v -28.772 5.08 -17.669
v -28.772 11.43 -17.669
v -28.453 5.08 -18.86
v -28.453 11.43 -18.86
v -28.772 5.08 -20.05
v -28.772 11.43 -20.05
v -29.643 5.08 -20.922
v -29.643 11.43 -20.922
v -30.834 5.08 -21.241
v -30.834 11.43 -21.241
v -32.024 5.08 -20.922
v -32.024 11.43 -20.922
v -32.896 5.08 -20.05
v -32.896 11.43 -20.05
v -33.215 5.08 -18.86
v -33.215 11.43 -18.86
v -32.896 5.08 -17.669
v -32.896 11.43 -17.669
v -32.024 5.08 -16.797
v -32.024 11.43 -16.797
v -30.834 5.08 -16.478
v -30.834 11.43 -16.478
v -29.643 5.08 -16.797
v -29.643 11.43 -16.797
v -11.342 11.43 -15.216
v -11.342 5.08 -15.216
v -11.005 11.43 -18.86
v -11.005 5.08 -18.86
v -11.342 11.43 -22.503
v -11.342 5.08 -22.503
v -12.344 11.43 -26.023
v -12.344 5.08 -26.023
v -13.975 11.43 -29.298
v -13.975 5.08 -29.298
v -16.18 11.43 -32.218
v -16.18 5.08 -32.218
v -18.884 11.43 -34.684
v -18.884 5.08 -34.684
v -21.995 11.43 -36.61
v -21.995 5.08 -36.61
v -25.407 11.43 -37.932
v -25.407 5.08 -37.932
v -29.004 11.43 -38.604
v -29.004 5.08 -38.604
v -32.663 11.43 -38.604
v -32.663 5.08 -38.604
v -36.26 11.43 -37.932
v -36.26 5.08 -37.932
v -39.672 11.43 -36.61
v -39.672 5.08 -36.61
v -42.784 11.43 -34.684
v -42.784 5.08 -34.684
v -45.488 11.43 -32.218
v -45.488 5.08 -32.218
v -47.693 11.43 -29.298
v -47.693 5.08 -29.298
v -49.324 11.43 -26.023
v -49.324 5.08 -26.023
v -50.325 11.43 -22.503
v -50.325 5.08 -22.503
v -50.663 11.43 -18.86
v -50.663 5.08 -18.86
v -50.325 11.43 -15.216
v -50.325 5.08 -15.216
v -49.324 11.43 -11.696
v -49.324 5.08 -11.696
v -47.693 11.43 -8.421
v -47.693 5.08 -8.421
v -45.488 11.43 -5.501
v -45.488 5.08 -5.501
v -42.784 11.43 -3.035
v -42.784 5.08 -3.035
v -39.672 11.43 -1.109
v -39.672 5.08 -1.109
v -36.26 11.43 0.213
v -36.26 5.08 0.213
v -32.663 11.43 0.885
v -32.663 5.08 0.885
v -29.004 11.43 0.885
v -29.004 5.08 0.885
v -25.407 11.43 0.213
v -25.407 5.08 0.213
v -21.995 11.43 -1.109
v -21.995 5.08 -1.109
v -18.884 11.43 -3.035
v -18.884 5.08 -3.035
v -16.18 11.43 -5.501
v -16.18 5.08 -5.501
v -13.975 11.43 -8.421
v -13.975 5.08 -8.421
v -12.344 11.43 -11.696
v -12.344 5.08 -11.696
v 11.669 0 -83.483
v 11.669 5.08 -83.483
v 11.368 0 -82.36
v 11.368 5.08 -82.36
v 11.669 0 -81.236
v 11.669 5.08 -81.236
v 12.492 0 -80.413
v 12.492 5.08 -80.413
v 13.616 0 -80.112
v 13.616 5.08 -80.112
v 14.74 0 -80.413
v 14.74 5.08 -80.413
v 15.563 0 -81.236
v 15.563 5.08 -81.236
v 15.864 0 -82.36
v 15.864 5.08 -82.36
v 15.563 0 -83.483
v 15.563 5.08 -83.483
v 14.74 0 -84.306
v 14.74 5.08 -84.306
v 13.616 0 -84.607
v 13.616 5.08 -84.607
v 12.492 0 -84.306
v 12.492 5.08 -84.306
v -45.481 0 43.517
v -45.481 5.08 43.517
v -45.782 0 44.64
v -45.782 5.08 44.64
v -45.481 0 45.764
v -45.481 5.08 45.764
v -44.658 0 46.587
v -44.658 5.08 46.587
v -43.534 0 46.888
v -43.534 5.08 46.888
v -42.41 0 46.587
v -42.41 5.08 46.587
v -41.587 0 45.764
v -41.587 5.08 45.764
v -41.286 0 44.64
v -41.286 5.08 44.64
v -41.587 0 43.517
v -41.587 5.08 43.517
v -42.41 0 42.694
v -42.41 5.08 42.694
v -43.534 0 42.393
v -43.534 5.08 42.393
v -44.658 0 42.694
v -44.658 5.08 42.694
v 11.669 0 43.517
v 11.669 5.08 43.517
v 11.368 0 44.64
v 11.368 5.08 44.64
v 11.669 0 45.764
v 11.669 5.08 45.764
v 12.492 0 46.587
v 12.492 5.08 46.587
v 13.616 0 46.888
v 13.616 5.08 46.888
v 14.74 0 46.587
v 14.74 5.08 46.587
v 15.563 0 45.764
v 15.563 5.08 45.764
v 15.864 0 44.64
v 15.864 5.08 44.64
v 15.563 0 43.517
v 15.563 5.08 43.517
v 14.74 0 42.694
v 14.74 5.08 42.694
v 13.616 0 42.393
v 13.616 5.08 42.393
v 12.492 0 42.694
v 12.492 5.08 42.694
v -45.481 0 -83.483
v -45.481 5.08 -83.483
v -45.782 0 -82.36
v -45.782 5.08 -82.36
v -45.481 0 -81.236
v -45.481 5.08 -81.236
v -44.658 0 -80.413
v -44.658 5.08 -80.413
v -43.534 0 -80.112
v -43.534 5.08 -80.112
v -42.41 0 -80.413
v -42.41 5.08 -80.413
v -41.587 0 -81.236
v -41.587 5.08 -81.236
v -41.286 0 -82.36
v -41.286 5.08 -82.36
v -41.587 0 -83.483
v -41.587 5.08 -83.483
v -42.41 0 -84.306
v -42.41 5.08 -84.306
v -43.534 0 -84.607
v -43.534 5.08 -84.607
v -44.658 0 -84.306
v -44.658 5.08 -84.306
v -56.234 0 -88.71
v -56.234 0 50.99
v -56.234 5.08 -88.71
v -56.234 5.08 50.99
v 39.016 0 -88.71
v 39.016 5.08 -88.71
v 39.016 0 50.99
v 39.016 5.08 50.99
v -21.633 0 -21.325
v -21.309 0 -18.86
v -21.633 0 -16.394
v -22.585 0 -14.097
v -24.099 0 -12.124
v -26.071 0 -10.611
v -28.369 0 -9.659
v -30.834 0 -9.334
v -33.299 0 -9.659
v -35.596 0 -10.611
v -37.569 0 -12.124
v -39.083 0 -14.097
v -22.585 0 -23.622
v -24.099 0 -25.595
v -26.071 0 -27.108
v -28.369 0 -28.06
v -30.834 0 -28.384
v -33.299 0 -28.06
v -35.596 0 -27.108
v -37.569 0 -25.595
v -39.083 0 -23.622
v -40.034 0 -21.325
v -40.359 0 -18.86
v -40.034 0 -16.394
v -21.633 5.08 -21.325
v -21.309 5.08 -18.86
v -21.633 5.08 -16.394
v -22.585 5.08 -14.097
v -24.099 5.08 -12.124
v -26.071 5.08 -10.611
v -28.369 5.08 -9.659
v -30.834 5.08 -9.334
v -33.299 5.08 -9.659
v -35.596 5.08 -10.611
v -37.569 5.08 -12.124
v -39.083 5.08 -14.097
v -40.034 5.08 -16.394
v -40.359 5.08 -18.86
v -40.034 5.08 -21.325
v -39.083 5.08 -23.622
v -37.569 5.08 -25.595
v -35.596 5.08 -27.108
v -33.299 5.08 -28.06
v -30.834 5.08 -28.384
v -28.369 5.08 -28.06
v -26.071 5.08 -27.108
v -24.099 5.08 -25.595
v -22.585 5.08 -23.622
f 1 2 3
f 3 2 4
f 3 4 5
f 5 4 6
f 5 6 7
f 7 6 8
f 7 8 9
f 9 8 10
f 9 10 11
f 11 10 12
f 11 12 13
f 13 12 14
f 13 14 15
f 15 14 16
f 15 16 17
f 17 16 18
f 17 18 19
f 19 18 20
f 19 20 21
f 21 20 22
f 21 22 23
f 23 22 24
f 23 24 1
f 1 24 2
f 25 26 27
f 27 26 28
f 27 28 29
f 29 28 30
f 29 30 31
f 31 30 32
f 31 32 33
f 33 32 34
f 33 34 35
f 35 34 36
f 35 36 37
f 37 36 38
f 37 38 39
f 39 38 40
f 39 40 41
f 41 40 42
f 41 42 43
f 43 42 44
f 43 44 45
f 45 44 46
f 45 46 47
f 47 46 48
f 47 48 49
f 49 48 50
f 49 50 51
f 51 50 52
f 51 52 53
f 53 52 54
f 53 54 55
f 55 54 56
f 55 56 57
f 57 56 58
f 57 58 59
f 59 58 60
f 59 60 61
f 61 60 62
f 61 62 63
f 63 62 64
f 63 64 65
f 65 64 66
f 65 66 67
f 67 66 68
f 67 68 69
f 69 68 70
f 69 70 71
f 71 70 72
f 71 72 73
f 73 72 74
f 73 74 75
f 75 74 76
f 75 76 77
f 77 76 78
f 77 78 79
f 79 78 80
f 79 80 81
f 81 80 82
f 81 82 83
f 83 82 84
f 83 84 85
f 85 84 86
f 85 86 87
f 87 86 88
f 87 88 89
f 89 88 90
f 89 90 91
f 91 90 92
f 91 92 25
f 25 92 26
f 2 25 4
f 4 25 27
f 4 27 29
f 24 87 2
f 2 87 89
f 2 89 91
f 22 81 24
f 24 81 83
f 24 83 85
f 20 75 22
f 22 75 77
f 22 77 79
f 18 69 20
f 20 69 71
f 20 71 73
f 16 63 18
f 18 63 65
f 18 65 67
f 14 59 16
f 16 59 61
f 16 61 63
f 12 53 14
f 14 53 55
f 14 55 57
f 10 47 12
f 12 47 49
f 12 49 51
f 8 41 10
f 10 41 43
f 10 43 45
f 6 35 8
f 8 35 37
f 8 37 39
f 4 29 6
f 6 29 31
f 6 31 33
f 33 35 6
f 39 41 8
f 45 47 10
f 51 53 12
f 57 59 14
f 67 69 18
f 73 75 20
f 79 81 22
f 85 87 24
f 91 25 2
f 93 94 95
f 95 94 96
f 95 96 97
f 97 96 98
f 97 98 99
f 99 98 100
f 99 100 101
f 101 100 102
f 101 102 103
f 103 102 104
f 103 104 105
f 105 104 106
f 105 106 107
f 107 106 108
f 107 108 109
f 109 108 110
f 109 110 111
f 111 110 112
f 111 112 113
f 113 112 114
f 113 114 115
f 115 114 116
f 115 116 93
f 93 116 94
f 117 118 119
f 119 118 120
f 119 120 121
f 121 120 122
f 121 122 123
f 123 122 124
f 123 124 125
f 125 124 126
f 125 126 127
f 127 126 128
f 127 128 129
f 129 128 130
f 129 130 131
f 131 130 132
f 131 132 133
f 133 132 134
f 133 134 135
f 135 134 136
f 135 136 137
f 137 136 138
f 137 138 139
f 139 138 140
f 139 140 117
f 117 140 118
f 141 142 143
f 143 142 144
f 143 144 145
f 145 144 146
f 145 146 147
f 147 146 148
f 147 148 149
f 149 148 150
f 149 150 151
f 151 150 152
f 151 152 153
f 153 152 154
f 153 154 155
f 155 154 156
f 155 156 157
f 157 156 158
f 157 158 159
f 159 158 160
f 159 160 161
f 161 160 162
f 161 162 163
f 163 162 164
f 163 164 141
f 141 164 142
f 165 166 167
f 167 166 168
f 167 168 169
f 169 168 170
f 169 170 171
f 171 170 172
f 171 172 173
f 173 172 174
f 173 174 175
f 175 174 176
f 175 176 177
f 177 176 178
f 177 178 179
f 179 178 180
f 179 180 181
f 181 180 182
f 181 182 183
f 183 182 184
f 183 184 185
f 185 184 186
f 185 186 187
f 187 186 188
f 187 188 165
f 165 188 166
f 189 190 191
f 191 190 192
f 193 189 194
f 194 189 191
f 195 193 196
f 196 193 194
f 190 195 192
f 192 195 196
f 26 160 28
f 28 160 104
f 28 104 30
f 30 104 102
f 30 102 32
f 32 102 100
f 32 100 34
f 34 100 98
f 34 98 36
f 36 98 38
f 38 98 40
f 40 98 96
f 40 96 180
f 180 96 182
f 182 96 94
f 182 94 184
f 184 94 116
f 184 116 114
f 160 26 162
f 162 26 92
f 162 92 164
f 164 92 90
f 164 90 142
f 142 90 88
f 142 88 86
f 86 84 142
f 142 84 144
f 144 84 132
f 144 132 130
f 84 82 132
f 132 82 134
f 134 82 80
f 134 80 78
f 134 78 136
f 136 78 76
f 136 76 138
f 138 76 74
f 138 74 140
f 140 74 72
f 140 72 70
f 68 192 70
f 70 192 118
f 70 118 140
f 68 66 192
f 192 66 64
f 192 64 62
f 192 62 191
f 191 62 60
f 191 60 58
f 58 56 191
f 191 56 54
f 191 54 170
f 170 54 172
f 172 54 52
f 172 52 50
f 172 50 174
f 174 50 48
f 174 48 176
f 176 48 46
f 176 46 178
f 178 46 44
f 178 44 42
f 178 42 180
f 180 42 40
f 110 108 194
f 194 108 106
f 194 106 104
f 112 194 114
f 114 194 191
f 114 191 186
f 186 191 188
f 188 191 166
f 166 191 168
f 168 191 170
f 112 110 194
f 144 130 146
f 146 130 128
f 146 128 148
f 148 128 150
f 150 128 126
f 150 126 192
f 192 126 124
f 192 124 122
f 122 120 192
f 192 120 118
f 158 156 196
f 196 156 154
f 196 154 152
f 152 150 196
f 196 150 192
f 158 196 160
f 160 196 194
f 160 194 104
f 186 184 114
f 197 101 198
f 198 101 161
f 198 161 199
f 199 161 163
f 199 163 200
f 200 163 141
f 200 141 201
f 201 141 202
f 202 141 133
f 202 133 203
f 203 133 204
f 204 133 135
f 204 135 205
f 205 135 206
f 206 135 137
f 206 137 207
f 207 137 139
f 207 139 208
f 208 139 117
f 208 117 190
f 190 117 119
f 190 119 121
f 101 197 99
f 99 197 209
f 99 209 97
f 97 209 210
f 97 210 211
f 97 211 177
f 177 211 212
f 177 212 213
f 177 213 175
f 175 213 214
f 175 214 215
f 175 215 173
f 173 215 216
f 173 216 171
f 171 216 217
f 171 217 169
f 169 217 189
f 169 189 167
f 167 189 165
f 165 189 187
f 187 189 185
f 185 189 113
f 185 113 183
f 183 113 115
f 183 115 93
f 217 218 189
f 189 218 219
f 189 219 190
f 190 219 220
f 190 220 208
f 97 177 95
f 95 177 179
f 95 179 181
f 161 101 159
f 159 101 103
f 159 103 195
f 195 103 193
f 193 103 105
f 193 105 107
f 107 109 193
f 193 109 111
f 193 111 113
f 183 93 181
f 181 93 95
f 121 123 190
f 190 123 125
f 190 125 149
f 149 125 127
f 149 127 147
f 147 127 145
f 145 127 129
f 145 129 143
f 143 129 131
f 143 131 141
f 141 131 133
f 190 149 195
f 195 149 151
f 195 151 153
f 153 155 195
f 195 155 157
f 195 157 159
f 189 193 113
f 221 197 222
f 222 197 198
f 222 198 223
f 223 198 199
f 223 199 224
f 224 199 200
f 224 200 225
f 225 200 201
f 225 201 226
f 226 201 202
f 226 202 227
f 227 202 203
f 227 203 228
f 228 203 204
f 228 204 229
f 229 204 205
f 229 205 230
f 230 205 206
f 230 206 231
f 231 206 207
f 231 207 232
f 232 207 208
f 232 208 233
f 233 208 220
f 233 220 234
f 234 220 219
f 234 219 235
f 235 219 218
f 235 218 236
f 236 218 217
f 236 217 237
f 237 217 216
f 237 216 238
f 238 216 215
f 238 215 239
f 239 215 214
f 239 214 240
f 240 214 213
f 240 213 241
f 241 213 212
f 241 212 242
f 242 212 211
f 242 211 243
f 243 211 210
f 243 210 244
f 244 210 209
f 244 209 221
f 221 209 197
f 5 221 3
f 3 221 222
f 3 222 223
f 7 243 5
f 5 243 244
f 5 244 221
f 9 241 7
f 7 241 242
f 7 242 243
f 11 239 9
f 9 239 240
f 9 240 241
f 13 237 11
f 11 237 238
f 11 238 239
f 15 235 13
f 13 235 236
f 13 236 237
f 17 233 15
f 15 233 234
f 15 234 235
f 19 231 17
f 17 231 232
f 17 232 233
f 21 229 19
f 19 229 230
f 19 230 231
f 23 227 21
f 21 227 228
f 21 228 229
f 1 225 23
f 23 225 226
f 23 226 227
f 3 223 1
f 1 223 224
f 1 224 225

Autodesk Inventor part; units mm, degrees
ref_plane "YZ Plane" through (0, 0, 0) normal (1, 0, 0) x (0, 1, 0)
ref_plane "XZ Plane" through (0, 0, 0) normal (0, 1, 0) x (-1, 0, 0)
ref_plane "XY Plane" through (0, 0, 0) normal (0, 0, 1) x (1, 0, 0)
sketch "Sketch1" plane through (0, 0, 0) normal (0, 1, 0) x (-1, 0, 0)
  line L0 (56.2338, 50.9905) -> (-39.0162, 50.9905)
  line L1 (-39.0162, 50.9905) -> (-39.0162, -88.7095)
  line L2 (-39.0162, -88.7095) -> (56.2338, -88.7095)
  line L3 (56.2338, -88.7095) -> (56.2338, 50.9905)
  point P0 (0, 0)
  dimension "d0" = 139.7
  dimension "d1" = 95.25
extrude "Extrusion1" add sketch "Sketch1" along normal blind 5.08
sketch "Sketch2" plane through (0, 5.08, 0) normal (0, 1, 0) x (1, 0, 0)
  line L0 (-56.2338, -50.9905) -> (39.0162, -50.9905) projected
  line L1 (39.0162, 88.7095) -> (-56.2338, 88.7095) projected
  line L2 (-56.2338, 88.7095) -> (-56.2338, -50.9905) projected
  point P0 (0, 0)
  point P1 (-43.5338, -44.6405)
  point P2 (13.6162, -44.6405)
  point P3 (13.6162, 82.3595)
  point P4 (-43.5338, 82.3595)
  dimension "d4" = 0
  dimension "d5" = 6.35
  dimension "d6" = 0
  dimension "d7" = 6.35
  dimension "d8" = 0
  dimension "d9" = 0
  dimension "d10" = 12.7
  dimension "d11" = 57.15
hole "Hole1" at (-43.5338, 5.08, 44.6405) at (13.6162, 5.08, 44.6405) at (13.6162, 5.08, -82.3595) at (-43.5338, 5.08, -82.3595) direction (0, -1, 0) diameter 4.4958 end through all clearance for "Flat Head Machine Screw (82)" size "#8" standard "Ansi Unified Screw Threads"
sketch "Sketch4" plane through (0, 5.08, 0) normal (0, 1, 0) x (1, 0, 0)
  circle A0 centre (-30.8338, 18.8595) radius 19.8293
  line L0 (-56.2338, -50.9905) -> (39.0162, -50.9905) projected
  line L1 (-56.2338, 88.7095) -> (-56.2338, -50.9905) projected
  point P0 (0, 0)
  dimension "d26" = 69.85
  dimension "d27" = 25.4
extrude "Extrusion3" add sketch "Sketch4" along normal blind 6.35
sketch "Sketch5" plane through (-30.8338, 11.43, -18.8595) normal (0, 1, 0) x (1, 0, 0)
  circle A0 centre (0, 0) radius 2.3813
  point P0 (30.8338, -18.8595)
  dimension "d30" = 4.7625
extrude "Extrusion4" cut sketch "Sketch5" against normal blind 33.3375
sketch "Sketch6" plane through (0, 0, 0) normal (0, -1, 0) x (1, 0, 0)
  circle A0 centre (-30.8338, -18.8595) radius 2.3813 projected
  circle A1 centre (-30.8338, -18.8595) radius 9.525
  point P0 (0, 0)
  dimension "d33" = 19.05
extrude "Extrusion5" cut sketch "Sketch6" against normal blind 5.08
properties part number "Slider"
